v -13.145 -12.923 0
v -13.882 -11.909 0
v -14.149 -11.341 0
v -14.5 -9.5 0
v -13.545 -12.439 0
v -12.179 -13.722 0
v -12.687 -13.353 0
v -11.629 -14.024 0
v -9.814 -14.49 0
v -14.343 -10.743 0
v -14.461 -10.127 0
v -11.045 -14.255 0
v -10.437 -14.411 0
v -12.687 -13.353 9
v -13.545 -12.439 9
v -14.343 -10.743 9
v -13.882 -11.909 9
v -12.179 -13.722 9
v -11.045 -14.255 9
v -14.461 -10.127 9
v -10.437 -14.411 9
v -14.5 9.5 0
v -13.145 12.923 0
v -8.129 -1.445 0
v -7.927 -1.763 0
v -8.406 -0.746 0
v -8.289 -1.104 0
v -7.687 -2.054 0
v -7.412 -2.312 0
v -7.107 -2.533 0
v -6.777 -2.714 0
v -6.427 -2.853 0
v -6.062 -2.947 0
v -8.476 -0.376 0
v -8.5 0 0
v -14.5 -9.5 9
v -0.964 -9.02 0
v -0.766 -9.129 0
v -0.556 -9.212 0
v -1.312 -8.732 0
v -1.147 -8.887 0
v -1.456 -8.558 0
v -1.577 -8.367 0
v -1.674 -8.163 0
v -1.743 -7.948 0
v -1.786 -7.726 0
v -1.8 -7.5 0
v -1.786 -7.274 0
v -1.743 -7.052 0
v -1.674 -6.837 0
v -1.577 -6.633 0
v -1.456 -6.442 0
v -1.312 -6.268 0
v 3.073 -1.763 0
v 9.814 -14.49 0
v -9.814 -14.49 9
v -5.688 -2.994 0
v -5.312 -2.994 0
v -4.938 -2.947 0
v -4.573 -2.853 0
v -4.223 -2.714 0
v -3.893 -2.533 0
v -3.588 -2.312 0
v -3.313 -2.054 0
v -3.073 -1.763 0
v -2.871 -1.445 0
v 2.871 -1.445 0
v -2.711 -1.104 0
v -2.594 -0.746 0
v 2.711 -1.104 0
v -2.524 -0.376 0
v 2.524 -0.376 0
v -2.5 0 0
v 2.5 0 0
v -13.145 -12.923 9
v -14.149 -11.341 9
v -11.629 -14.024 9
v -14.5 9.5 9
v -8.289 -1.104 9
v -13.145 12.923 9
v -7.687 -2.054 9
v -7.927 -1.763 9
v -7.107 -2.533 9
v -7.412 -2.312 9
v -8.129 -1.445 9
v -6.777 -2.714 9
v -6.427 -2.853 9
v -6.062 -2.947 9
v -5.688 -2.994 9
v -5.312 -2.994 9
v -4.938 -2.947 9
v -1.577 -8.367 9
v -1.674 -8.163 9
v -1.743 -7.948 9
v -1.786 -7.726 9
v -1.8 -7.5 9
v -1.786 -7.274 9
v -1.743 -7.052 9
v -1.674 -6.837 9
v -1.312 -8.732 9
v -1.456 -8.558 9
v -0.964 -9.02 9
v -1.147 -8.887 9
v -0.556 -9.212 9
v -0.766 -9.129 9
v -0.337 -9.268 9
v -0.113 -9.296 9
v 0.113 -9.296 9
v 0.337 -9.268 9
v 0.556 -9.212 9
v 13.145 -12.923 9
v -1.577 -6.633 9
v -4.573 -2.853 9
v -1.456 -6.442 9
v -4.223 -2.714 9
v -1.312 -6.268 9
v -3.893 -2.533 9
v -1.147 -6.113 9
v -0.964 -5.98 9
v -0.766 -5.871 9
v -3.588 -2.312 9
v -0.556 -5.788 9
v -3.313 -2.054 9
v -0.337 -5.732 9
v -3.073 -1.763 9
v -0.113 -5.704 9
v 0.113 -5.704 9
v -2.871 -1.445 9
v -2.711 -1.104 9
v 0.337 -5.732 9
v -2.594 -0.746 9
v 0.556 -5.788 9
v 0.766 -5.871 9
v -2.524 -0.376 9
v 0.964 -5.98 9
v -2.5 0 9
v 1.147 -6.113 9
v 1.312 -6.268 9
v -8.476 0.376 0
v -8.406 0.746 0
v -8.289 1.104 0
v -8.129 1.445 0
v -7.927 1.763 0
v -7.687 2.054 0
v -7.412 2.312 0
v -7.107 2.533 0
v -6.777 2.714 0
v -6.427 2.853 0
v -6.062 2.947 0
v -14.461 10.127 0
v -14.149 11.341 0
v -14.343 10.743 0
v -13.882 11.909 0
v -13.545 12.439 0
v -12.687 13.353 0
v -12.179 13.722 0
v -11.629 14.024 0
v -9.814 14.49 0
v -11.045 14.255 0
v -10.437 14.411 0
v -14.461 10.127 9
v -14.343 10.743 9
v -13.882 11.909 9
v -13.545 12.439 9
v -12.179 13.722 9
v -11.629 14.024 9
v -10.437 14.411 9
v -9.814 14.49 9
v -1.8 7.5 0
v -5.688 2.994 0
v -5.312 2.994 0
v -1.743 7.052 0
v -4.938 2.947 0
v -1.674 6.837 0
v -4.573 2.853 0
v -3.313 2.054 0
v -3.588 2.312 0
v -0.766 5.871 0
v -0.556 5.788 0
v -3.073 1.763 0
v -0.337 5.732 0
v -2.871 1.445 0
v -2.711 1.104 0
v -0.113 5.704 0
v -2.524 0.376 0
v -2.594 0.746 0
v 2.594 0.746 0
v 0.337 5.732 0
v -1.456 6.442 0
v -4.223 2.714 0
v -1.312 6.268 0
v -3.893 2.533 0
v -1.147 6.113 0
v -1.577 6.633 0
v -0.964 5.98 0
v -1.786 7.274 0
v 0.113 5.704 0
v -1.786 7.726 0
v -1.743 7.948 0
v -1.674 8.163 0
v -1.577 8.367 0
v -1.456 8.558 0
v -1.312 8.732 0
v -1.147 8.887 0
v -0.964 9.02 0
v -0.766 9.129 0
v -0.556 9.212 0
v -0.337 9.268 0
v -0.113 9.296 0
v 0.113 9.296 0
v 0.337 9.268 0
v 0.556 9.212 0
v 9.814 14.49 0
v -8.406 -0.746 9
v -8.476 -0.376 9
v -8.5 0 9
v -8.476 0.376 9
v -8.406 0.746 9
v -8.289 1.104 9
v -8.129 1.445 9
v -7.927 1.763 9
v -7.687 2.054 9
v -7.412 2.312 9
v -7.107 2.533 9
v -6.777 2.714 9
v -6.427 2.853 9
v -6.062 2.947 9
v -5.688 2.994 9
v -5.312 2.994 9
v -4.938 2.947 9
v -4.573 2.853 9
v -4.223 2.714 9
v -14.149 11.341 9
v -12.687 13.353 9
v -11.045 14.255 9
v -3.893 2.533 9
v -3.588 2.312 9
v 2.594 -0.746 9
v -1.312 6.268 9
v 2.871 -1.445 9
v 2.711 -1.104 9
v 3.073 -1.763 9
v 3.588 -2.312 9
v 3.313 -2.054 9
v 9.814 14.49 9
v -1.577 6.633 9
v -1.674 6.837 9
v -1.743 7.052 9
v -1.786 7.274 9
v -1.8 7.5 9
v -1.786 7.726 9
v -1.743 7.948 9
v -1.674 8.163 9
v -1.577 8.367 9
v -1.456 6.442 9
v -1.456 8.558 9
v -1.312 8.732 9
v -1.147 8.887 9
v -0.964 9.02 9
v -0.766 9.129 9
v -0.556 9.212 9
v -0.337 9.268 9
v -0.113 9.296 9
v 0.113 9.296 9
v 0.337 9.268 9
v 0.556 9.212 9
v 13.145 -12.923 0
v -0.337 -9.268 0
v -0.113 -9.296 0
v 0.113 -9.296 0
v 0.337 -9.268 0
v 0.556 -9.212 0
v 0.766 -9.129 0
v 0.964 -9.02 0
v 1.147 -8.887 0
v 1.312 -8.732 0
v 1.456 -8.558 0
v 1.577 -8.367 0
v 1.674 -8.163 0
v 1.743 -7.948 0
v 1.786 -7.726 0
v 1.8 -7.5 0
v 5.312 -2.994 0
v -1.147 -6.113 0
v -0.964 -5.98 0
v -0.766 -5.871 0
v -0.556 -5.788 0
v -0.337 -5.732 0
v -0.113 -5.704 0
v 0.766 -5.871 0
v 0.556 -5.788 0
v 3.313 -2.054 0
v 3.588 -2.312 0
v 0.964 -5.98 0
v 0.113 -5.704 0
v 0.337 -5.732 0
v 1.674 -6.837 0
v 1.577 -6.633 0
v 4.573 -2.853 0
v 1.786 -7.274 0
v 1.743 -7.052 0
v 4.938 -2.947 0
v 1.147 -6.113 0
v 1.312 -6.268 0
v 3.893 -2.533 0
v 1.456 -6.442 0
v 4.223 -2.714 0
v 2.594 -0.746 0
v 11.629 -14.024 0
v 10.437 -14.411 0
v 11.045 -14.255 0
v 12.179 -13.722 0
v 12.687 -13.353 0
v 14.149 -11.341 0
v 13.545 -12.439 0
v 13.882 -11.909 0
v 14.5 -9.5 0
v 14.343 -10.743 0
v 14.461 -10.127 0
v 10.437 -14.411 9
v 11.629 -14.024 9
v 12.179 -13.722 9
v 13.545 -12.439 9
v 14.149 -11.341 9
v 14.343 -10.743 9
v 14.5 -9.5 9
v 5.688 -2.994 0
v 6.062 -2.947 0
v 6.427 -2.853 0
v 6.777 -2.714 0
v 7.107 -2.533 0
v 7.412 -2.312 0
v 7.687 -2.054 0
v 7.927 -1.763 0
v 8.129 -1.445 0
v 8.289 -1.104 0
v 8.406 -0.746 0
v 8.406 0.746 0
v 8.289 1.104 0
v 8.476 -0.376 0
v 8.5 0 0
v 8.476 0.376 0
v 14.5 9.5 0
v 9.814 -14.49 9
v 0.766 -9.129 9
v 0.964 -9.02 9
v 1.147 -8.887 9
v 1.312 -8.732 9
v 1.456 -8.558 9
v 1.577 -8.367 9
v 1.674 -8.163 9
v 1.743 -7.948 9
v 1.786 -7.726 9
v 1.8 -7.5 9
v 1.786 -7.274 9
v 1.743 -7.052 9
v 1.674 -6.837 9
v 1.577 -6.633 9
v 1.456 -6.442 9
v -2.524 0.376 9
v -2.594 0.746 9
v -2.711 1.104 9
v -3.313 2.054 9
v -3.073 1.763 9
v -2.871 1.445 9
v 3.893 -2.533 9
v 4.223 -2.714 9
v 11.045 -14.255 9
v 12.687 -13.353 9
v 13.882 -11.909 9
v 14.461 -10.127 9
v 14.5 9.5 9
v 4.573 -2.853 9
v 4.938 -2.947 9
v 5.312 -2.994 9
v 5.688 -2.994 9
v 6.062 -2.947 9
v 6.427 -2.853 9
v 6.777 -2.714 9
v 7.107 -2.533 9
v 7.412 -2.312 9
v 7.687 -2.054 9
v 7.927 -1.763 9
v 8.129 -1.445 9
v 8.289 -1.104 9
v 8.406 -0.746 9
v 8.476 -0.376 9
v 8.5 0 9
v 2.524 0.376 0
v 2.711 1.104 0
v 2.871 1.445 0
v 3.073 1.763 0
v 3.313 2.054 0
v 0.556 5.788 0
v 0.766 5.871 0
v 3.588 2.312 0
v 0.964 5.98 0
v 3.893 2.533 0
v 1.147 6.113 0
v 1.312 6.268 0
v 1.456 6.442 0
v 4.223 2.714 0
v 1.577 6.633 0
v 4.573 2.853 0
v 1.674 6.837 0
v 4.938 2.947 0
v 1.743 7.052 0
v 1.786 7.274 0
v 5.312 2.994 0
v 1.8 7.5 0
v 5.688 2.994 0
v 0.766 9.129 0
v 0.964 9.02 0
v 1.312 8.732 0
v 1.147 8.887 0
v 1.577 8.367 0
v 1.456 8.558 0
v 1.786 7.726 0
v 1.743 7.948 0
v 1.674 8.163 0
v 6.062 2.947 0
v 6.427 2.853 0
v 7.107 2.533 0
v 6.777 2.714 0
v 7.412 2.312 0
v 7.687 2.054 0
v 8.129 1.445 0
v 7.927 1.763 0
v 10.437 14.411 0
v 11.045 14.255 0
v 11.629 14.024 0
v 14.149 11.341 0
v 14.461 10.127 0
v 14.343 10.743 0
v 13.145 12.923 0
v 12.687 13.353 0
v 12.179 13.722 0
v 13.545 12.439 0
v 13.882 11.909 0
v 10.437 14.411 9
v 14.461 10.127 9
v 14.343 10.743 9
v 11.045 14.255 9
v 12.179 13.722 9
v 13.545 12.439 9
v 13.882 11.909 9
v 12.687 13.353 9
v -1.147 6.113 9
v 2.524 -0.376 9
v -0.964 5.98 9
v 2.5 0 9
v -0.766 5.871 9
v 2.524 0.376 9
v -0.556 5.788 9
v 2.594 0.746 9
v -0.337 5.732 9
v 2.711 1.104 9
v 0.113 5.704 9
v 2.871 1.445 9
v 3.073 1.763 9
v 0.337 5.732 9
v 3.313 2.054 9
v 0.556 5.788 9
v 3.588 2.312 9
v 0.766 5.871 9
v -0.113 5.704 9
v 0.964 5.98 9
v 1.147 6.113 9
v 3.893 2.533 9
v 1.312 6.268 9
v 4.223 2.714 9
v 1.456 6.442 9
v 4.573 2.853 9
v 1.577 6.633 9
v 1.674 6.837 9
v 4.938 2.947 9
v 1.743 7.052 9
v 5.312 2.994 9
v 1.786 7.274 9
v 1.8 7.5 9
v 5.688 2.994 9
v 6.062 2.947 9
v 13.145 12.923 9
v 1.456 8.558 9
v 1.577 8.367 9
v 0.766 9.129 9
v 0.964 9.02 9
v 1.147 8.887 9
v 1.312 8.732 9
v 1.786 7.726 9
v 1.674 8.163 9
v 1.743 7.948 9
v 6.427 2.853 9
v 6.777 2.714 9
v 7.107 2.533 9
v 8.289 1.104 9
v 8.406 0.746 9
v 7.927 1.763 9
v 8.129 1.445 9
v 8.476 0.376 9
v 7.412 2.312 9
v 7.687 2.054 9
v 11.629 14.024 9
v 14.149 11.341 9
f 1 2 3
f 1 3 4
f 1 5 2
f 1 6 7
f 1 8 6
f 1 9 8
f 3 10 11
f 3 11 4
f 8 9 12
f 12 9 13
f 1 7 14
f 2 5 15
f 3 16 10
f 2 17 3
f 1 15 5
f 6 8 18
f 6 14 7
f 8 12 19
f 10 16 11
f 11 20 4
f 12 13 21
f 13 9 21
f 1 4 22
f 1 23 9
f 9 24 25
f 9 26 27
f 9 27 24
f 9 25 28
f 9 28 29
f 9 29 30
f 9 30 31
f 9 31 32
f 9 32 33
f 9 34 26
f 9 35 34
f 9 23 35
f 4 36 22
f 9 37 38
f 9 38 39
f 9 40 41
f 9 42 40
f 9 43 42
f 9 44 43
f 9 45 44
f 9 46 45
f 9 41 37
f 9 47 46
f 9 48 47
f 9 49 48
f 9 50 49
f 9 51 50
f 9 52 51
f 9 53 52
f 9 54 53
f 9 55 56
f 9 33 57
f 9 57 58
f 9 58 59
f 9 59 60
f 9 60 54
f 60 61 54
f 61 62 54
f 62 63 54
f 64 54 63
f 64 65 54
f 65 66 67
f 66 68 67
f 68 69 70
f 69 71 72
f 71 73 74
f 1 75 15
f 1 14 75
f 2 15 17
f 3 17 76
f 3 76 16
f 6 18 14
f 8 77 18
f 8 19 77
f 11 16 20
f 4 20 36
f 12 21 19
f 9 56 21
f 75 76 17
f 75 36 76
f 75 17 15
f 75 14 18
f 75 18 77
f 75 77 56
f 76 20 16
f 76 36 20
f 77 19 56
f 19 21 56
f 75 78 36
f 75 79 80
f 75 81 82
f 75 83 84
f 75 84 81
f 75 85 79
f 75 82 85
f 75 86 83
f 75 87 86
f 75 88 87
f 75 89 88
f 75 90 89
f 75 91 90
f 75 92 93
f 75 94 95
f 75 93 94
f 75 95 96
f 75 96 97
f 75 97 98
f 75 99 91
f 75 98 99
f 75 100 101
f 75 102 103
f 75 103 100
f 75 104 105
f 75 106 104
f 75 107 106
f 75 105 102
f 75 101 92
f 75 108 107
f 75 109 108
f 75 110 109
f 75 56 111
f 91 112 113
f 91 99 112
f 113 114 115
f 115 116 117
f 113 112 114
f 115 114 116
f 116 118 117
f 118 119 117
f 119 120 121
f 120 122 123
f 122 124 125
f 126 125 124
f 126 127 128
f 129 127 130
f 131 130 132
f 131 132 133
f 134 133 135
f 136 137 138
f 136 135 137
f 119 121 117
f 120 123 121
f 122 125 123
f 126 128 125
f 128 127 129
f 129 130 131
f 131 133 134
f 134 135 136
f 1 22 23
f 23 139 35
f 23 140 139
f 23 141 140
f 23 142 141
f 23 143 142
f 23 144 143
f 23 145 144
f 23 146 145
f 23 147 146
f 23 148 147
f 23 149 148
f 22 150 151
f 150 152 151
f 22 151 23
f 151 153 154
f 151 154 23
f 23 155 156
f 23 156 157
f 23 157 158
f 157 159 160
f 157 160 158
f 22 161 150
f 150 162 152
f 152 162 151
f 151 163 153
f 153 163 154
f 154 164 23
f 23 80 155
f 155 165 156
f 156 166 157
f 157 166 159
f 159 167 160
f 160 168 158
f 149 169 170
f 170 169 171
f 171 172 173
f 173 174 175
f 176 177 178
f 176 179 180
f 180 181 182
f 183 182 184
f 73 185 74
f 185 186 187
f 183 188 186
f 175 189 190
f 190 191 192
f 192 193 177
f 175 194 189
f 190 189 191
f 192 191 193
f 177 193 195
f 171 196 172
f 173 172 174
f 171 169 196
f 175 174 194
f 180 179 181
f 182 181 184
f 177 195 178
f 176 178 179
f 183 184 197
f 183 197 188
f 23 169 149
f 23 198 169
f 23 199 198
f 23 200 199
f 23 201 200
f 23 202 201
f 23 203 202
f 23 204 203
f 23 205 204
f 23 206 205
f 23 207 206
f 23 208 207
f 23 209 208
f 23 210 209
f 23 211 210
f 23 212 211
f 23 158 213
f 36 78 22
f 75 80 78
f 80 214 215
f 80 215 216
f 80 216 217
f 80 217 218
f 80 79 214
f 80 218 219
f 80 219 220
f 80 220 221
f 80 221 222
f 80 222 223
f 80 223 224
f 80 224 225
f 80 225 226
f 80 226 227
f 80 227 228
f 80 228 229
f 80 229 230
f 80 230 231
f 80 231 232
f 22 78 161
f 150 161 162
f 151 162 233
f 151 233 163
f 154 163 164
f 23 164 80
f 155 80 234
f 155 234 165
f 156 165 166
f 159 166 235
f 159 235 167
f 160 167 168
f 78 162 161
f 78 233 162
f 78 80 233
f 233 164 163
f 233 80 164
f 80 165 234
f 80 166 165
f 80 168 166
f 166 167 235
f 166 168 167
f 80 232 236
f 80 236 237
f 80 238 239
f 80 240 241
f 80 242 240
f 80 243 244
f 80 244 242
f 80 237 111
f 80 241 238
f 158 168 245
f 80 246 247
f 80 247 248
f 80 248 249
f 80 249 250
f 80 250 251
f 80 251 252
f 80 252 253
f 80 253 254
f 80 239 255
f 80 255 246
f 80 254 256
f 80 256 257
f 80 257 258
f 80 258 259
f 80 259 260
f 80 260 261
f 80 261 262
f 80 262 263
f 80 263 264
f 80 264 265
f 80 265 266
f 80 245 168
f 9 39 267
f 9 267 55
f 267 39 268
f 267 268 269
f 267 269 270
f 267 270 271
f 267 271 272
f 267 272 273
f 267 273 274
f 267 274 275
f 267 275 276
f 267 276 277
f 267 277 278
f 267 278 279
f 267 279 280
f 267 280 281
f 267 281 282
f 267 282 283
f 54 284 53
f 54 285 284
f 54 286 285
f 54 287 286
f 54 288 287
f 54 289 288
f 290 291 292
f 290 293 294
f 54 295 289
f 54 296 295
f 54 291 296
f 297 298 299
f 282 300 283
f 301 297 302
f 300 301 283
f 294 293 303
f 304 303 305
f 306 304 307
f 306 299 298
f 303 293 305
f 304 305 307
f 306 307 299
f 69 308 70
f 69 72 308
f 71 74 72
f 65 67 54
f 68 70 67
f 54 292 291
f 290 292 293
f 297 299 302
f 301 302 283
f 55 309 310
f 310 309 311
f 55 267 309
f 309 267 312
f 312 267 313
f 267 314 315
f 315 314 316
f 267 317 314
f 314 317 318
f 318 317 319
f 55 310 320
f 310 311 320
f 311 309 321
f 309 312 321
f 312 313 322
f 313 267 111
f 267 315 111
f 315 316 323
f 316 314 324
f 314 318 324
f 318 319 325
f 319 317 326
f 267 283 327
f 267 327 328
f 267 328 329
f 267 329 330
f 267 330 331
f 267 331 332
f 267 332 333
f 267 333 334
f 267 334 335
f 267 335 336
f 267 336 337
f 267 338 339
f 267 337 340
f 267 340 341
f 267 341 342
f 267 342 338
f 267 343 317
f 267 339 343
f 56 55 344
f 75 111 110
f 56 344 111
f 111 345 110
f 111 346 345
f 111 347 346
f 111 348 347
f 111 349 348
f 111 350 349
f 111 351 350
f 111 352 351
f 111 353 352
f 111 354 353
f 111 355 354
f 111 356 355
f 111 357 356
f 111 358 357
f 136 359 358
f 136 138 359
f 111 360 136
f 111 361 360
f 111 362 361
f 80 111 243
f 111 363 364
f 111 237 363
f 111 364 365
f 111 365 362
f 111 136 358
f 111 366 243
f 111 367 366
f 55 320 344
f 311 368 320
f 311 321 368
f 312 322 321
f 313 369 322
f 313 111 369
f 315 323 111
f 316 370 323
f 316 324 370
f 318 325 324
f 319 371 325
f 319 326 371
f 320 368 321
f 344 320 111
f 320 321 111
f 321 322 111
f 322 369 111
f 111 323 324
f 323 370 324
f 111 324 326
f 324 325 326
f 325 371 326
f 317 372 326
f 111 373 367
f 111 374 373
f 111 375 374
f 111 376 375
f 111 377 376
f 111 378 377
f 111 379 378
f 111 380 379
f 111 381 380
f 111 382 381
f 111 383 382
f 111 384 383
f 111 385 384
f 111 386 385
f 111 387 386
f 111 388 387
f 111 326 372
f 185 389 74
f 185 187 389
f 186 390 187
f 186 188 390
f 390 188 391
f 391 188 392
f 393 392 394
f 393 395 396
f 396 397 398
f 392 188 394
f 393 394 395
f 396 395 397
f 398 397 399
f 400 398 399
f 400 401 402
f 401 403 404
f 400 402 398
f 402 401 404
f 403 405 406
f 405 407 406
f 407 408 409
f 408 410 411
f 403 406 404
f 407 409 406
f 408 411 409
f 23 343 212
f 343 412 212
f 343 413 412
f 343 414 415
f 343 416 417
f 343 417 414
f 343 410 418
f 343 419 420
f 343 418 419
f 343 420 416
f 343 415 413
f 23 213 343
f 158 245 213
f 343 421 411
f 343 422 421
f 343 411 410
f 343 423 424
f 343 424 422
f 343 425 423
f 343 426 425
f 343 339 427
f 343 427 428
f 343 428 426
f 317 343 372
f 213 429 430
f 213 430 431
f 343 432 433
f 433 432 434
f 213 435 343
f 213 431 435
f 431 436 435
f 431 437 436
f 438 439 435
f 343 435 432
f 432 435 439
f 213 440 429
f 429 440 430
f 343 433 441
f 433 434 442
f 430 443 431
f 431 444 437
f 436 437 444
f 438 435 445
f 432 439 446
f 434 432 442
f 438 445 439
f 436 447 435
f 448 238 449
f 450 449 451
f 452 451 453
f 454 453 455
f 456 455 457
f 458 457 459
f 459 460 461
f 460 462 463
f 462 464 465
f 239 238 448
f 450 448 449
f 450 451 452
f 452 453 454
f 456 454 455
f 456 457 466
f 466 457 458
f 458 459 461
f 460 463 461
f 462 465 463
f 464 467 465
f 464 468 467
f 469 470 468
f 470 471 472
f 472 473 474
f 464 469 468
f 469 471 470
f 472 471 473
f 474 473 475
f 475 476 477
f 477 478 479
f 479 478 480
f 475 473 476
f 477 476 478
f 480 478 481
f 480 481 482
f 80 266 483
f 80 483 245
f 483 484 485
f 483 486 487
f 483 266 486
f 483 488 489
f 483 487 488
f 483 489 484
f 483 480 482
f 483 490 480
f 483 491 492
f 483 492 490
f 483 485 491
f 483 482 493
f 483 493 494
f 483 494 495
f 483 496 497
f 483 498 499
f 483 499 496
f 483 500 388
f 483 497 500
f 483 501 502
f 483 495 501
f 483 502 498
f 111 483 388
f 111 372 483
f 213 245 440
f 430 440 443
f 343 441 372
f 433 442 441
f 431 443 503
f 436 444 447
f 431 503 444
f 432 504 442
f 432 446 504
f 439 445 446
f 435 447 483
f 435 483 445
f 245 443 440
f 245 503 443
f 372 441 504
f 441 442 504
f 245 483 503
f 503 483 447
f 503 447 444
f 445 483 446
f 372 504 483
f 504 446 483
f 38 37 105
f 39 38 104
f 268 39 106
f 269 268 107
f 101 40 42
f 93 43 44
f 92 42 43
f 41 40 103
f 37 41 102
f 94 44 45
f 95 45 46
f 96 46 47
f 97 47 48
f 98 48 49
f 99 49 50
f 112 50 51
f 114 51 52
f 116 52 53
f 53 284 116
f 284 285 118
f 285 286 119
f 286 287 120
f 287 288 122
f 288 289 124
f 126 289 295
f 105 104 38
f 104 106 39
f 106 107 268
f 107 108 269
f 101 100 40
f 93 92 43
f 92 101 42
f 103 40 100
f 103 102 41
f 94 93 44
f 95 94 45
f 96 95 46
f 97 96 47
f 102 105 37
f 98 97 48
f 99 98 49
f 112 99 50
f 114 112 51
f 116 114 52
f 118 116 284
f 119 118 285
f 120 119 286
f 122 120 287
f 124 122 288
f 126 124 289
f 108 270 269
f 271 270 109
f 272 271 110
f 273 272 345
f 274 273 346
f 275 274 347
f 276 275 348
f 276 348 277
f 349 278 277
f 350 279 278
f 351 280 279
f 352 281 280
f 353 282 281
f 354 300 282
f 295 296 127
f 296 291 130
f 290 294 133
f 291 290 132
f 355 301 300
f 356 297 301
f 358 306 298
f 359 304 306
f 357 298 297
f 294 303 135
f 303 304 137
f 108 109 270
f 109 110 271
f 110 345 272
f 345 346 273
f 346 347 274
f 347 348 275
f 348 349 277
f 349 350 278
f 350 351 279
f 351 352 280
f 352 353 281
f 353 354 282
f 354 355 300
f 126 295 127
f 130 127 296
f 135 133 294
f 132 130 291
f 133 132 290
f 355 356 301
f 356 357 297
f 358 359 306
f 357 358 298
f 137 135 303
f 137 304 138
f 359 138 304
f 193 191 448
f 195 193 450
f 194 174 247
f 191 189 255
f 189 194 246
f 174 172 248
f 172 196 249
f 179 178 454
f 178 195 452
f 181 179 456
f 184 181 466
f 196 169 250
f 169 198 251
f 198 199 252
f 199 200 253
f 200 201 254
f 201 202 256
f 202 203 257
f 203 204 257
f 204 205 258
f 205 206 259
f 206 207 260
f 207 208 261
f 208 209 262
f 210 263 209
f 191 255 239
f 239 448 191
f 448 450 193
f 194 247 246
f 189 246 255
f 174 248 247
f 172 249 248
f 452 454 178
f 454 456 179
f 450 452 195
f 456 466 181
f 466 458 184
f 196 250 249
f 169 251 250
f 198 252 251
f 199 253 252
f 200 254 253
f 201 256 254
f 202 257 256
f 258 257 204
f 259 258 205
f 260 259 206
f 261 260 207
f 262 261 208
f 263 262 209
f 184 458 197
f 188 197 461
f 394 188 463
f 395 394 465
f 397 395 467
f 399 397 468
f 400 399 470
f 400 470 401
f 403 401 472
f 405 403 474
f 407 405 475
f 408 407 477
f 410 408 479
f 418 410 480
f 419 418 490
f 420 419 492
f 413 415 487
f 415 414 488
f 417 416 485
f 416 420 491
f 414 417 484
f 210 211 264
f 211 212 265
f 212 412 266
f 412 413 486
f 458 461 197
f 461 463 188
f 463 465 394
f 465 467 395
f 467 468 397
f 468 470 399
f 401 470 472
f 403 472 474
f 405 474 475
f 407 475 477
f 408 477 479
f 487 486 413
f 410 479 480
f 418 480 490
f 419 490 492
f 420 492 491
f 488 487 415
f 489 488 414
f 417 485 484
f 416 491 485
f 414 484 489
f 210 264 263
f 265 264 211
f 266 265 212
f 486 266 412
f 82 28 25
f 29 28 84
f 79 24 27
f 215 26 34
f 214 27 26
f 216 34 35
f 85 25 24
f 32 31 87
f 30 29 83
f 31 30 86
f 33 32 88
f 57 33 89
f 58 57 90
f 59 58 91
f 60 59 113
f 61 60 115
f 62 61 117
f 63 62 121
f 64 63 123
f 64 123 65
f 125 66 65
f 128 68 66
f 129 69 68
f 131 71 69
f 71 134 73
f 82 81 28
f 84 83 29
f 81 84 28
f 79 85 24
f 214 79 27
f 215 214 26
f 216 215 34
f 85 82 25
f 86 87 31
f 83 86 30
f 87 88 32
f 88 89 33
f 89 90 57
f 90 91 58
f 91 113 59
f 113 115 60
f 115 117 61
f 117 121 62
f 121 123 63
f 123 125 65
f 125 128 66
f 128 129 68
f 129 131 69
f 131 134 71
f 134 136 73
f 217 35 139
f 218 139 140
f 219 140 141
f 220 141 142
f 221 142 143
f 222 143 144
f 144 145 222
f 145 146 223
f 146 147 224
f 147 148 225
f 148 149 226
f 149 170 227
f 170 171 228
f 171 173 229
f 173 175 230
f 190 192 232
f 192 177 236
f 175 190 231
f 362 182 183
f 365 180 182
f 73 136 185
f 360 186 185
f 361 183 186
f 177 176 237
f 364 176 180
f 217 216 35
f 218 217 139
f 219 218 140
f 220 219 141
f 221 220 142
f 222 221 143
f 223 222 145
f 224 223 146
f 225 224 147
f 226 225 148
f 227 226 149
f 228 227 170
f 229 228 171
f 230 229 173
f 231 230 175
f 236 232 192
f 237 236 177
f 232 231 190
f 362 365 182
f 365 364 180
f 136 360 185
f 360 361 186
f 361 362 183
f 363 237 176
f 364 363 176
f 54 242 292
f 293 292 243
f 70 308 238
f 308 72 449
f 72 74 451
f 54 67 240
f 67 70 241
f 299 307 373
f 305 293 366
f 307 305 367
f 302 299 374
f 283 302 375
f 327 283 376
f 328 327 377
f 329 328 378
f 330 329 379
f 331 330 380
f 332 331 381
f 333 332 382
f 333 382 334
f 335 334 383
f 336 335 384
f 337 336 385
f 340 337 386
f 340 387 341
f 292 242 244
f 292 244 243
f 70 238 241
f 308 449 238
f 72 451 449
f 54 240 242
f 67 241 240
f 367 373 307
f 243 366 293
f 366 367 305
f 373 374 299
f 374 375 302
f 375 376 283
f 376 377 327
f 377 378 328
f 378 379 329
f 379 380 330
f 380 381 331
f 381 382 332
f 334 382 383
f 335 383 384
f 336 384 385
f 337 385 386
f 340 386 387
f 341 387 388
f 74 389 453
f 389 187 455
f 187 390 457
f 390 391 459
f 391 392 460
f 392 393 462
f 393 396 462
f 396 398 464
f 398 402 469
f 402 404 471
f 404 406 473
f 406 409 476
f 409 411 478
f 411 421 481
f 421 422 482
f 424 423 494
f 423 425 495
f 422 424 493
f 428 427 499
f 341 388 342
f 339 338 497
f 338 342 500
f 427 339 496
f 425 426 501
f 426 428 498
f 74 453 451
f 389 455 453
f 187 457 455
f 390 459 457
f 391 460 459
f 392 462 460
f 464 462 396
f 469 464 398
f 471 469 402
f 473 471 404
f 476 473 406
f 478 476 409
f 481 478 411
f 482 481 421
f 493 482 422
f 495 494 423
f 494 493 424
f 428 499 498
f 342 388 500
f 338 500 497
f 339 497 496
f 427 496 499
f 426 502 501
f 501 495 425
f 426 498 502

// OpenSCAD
$fn = 50;

difference() {
	union() {
		hull() {
			translate(v = [-9.5, 9.5, 0]) {
				cylinder(h = 9, r = 5);
			}
			translate(v = [9.5, 9.5, 0]) {
				cylinder(h = 9, r = 5);
			}
			translate(v = [-9.5, -9.5, 0]) {
				cylinder(h = 9, r = 5);
			}
			translate(v = [9.5, -9.5, 0]) {
				cylinder(h = 9, r = 5);
			}
		}
	}
	union() {
		translate(v = [0.0, -7.5, 0]) {
			cylinder(h = 9, r = 1.8);
		}
		translate(v = [0.0, 7.5, 0]) {
			cylinder(h = 9, r = 1.8);
		}
		translate(v = [-5.5, 0, 0.0]) {
			cylinder(h = 9, r = 3.0);
		}
		translate(v = [5.5, 0, 0.0]) {
			cylinder(h = 9, r = 3.0);
		}
	}
}
